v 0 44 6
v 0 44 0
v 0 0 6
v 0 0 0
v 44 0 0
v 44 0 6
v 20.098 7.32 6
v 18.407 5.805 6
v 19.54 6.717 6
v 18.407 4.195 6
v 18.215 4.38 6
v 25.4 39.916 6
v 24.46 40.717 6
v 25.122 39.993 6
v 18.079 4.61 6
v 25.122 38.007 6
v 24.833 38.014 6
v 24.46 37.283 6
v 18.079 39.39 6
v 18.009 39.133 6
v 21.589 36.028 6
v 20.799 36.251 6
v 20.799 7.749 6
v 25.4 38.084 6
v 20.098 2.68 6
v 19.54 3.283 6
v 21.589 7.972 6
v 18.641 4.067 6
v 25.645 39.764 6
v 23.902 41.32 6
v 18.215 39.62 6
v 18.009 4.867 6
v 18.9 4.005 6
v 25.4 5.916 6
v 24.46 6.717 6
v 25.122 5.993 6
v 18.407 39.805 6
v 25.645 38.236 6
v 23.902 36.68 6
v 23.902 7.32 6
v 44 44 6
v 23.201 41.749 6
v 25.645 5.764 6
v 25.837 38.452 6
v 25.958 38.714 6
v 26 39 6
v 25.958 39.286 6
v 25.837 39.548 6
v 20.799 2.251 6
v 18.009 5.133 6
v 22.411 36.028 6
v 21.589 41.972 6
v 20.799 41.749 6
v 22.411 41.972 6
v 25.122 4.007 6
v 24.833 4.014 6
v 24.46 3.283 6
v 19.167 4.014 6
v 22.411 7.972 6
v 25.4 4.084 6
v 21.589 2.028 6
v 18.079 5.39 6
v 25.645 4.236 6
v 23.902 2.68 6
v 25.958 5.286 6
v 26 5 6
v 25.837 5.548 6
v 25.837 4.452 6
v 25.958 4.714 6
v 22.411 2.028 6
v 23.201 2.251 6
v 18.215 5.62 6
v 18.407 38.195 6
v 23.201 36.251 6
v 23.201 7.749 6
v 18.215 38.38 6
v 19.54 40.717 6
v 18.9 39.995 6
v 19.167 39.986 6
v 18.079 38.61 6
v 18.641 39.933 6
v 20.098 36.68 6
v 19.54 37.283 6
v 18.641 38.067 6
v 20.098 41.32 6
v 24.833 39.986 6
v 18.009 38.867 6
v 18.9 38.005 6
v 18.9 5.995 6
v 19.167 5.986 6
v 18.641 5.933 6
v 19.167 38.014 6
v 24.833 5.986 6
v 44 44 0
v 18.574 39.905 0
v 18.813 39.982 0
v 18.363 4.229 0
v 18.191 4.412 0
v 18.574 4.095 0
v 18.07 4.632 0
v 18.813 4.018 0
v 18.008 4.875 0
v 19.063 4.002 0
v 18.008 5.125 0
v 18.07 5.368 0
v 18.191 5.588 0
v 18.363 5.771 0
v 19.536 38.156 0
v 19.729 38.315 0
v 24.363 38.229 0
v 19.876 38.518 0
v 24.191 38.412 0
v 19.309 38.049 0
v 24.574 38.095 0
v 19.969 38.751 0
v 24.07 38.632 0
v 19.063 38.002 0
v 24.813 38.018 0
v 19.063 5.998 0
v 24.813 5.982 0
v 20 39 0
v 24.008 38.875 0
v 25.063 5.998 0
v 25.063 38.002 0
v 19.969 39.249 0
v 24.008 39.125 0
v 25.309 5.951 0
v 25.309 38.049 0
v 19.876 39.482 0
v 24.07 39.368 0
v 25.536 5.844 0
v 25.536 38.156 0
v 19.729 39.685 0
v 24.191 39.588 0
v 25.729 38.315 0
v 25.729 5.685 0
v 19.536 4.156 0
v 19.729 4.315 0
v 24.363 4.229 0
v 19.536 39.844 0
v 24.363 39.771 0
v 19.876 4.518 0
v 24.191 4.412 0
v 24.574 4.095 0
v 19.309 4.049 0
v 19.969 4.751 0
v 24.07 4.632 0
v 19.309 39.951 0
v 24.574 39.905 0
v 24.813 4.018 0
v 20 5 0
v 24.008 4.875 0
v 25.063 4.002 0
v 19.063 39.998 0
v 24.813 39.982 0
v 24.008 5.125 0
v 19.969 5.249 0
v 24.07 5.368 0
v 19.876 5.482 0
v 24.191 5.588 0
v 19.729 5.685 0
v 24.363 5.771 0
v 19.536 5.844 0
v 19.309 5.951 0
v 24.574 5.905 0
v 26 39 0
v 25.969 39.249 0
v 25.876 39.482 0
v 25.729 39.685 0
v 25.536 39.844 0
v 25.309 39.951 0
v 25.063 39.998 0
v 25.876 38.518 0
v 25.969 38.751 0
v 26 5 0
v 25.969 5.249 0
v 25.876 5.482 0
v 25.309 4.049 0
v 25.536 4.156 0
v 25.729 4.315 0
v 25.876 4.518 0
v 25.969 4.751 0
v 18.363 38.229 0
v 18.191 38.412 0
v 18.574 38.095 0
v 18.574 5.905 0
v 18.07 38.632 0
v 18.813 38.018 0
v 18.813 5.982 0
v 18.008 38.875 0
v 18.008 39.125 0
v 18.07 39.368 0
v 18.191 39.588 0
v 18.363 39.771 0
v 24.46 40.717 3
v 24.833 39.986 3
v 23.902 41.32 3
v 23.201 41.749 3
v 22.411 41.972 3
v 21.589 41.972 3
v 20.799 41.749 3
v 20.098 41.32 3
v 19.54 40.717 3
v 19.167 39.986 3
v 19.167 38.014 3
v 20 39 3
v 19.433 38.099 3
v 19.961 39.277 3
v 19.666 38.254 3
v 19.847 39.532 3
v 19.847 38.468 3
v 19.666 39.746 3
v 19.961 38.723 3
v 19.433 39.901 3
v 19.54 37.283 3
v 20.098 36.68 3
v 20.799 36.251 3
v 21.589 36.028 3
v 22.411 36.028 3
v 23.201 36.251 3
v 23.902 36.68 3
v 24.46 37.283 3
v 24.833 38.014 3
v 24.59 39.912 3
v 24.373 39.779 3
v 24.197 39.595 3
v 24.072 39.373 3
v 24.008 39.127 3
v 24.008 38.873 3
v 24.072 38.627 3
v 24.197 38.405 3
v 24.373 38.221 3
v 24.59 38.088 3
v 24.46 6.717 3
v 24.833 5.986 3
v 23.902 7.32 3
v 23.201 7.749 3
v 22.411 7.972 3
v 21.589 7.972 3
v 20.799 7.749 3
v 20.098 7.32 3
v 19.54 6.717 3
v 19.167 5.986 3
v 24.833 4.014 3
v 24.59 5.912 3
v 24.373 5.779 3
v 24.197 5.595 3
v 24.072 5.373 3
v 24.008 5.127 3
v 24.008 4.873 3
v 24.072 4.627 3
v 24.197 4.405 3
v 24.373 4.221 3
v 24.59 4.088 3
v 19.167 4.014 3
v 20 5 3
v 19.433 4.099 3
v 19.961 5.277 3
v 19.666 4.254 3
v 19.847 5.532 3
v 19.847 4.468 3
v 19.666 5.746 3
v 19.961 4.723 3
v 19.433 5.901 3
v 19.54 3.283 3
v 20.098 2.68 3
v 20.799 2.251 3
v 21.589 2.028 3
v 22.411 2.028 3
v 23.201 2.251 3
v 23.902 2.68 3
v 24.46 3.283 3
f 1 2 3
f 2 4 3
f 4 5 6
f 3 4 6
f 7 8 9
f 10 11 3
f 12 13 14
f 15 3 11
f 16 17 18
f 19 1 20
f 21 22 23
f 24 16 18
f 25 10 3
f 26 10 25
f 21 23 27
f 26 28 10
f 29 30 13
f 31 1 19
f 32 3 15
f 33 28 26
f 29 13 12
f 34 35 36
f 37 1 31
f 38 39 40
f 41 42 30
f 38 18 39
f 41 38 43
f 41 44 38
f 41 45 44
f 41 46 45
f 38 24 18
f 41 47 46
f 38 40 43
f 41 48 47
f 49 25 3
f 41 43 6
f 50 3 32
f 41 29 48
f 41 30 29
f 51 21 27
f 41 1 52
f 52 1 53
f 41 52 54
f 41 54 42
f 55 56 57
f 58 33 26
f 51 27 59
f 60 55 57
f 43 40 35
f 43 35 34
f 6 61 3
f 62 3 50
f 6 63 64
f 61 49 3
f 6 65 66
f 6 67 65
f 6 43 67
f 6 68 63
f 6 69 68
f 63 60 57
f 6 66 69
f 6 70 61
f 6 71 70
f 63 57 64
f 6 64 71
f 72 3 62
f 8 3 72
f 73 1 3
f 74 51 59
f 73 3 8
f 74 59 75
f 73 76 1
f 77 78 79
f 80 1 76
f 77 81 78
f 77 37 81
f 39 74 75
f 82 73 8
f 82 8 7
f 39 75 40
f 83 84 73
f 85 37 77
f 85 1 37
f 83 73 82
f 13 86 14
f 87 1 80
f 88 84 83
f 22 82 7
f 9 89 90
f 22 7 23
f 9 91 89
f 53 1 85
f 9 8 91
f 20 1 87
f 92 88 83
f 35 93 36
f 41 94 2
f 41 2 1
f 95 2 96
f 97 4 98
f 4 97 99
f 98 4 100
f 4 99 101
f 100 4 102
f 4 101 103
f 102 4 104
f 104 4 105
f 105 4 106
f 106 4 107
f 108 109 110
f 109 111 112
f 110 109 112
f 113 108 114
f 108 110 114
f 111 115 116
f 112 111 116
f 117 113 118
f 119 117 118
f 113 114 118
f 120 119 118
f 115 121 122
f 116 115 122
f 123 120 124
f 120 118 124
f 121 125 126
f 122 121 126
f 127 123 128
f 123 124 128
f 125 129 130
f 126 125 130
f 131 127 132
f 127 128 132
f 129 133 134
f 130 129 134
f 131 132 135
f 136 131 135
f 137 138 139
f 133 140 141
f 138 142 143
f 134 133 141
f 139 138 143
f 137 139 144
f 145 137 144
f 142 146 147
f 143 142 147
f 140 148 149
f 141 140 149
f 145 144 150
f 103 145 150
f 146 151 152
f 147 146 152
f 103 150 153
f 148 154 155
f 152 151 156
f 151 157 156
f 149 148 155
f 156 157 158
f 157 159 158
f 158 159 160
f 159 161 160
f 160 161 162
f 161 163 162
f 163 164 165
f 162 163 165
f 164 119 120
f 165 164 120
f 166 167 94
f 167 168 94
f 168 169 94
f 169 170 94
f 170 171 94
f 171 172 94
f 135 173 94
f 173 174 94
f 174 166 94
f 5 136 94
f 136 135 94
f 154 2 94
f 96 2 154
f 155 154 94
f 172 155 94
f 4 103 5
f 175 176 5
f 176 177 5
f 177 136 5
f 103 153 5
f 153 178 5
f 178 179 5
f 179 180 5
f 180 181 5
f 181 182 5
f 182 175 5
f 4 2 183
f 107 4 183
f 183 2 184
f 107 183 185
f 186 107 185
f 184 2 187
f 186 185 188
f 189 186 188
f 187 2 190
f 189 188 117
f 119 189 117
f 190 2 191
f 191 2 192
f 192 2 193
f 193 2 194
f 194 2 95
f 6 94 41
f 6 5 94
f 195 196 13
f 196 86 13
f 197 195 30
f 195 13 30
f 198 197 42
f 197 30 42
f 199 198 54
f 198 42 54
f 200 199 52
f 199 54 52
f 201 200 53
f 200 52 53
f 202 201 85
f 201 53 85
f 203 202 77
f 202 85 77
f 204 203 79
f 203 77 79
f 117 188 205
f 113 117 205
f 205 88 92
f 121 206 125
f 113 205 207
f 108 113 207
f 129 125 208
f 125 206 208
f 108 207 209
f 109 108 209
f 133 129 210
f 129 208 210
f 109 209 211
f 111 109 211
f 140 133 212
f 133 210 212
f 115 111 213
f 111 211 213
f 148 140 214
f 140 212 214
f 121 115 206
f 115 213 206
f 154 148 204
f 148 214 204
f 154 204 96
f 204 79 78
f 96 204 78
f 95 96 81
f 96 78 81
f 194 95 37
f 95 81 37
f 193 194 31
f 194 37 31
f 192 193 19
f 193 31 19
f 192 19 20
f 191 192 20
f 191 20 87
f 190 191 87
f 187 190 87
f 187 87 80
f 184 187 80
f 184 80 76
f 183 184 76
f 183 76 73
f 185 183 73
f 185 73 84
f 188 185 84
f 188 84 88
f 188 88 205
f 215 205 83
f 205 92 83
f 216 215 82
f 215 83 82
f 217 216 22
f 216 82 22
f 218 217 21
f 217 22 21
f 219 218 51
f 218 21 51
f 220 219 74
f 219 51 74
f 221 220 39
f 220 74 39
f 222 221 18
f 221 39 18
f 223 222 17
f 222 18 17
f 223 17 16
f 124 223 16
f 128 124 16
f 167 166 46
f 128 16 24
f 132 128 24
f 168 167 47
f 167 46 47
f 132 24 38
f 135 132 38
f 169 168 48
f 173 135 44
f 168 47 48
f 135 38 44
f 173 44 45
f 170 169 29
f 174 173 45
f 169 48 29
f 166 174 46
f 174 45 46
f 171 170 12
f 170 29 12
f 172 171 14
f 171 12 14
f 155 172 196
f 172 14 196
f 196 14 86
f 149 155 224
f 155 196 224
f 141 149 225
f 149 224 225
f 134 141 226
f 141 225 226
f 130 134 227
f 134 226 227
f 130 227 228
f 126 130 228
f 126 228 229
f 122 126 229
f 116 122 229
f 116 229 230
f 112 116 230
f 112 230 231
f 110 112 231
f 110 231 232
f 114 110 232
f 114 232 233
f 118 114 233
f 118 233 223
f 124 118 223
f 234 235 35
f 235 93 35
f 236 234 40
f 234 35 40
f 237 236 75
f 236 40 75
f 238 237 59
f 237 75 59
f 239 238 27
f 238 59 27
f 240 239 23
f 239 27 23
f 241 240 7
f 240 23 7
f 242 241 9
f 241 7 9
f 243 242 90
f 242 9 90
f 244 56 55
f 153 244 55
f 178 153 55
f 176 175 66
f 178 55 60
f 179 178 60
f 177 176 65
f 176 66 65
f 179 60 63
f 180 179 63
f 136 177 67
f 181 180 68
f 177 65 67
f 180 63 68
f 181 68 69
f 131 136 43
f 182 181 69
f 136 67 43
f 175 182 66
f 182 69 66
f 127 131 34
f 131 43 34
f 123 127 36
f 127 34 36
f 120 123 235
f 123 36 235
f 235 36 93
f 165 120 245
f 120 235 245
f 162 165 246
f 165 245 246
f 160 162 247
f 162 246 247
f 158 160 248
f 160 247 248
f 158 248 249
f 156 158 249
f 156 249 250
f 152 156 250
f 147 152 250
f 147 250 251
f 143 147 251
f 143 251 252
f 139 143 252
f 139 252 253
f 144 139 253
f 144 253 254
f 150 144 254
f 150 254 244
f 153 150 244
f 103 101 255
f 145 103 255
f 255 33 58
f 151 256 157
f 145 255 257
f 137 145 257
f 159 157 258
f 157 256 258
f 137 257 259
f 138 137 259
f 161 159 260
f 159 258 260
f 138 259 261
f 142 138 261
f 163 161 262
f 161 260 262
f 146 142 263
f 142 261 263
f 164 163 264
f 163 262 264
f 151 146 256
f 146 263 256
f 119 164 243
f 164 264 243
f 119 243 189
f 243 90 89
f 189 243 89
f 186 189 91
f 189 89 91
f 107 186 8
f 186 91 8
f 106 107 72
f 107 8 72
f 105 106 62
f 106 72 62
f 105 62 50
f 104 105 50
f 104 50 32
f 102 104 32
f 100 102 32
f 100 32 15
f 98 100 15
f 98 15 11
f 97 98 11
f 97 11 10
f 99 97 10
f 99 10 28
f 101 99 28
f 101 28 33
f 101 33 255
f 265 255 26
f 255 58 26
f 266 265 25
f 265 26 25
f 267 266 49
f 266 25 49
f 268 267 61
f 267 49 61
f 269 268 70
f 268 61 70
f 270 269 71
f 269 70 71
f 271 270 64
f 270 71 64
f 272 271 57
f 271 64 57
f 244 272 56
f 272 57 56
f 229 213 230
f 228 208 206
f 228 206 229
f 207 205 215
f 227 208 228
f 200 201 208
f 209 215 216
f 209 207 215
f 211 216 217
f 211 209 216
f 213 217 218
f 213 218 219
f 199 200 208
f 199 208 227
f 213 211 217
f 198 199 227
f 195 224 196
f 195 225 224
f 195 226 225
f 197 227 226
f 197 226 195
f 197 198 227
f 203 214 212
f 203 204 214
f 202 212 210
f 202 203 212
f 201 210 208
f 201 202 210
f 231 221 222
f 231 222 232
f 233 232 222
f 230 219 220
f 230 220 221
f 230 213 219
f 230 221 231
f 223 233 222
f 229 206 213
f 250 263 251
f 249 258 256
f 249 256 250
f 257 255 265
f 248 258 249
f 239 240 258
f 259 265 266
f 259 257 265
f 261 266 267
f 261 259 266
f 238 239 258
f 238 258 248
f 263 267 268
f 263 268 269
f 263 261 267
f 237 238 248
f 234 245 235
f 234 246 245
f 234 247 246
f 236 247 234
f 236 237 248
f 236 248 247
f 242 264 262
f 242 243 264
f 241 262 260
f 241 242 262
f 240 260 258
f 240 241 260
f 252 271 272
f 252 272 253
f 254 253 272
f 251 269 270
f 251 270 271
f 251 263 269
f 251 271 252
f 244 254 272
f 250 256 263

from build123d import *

# Parameters (mm, degrees)
CYLINDER004_R     = 1
CYLINDER004_DEPTH = 10
CYLINDER005_R     = 1
CYLINDER005_DEPTH = 10
CYLINDER003_R     = 1
CYLINDER003_DEPTH = 10
CYLINDER002_R     = 1
CYLINDER002_DEPTH = 10
CYLINDER_R        = 3
CYLINDER_DEPTH    = 10
CYLINDER001_R     = 3
CYLINDER001_DEPTH = 10
BOX_W             = 44
BOX_H             = 44
BOX_DEPTH         = 6


with BuildPart() as cylinder004:
    # Cylinder004 → Cylinder004 (new body)
    with BuildSketch(Plane(origin=(19, 39, -2), x_dir=(1, 0, 0), z_dir=(0, 0, 1))):
        Circle(CYLINDER004_R)
    extrude(amount=CYLINDER004_DEPTH)


with BuildPart() as cylinder005:
    # Cylinder005 → Cylinder005 (new body)
    with BuildSketch(Plane(origin=(25, 39, -2), x_dir=(1, 0, 0), z_dir=(0, 0, 1))):
        Circle(CYLINDER005_R)
    extrude(amount=CYLINDER005_DEPTH)


with BuildPart() as cylinder003:
    # Cylinder003 → Cylinder003 (new body)
    with BuildSketch(Plane(origin=(25, 5, -2), x_dir=(1, 0, 0), z_dir=(0, 0, 1))):
        Circle(CYLINDER003_R)
    extrude(amount=CYLINDER003_DEPTH)


with BuildPart() as cylinder002:
    # Cylinder002 → Cylinder002 (new body)
    with BuildSketch(Plane(origin=(19, 5, -2), x_dir=(1, 0, 0), z_dir=(0, 0, 1))):
        Circle(CYLINDER002_R)
    extrude(amount=CYLINDER002_DEPTH)


with BuildPart() as cylinder:
    # Cylinder → Cylinder (new body)
    with BuildSketch(Plane(origin=(22, 5, 3), x_dir=(1, 0, 0), z_dir=(0, 0, 1))):
        Circle(CYLINDER_R)
    extrude(amount=CYLINDER_DEPTH)


with BuildPart() as cylinder001:
    # Cylinder001 → Cylinder001 (new body)
    with BuildSketch(Plane(origin=(22, 39, 3), x_dir=(1, 0, 0), z_dir=(0, 0, 1))):
        Circle(CYLINDER001_R)
    extrude(amount=CYLINDER001_DEPTH)


with BuildPart() as cut005:
    # Box → Box (new body)
    with BuildSketch(Plane.XY):
        with Locations((22, 22)):
            Rectangle(BOX_W, BOX_H)
    extrude(amount=BOX_DEPTH)

    # Cut: cut Cylinder001
    add(cylinder001.part, mode=Mode.SUBTRACT)

    # Cut001: cut Cylinder
    add(cylinder.part, mode=Mode.SUBTRACT)

    # Cut002: cut Cylinder002
    add(cylinder002.part, mode=Mode.SUBTRACT)

    # Cut003: cut Cylinder003
    add(cylinder003.part, mode=Mode.SUBTRACT)

    # Cut004: cut Cylinder005
    add(cylinder005.part, mode=Mode.SUBTRACT)

    # Cut005: cut Cylinder004
    add(cylinder004.part, mode=Mode.SUBTRACT)


solid = cut005.part
